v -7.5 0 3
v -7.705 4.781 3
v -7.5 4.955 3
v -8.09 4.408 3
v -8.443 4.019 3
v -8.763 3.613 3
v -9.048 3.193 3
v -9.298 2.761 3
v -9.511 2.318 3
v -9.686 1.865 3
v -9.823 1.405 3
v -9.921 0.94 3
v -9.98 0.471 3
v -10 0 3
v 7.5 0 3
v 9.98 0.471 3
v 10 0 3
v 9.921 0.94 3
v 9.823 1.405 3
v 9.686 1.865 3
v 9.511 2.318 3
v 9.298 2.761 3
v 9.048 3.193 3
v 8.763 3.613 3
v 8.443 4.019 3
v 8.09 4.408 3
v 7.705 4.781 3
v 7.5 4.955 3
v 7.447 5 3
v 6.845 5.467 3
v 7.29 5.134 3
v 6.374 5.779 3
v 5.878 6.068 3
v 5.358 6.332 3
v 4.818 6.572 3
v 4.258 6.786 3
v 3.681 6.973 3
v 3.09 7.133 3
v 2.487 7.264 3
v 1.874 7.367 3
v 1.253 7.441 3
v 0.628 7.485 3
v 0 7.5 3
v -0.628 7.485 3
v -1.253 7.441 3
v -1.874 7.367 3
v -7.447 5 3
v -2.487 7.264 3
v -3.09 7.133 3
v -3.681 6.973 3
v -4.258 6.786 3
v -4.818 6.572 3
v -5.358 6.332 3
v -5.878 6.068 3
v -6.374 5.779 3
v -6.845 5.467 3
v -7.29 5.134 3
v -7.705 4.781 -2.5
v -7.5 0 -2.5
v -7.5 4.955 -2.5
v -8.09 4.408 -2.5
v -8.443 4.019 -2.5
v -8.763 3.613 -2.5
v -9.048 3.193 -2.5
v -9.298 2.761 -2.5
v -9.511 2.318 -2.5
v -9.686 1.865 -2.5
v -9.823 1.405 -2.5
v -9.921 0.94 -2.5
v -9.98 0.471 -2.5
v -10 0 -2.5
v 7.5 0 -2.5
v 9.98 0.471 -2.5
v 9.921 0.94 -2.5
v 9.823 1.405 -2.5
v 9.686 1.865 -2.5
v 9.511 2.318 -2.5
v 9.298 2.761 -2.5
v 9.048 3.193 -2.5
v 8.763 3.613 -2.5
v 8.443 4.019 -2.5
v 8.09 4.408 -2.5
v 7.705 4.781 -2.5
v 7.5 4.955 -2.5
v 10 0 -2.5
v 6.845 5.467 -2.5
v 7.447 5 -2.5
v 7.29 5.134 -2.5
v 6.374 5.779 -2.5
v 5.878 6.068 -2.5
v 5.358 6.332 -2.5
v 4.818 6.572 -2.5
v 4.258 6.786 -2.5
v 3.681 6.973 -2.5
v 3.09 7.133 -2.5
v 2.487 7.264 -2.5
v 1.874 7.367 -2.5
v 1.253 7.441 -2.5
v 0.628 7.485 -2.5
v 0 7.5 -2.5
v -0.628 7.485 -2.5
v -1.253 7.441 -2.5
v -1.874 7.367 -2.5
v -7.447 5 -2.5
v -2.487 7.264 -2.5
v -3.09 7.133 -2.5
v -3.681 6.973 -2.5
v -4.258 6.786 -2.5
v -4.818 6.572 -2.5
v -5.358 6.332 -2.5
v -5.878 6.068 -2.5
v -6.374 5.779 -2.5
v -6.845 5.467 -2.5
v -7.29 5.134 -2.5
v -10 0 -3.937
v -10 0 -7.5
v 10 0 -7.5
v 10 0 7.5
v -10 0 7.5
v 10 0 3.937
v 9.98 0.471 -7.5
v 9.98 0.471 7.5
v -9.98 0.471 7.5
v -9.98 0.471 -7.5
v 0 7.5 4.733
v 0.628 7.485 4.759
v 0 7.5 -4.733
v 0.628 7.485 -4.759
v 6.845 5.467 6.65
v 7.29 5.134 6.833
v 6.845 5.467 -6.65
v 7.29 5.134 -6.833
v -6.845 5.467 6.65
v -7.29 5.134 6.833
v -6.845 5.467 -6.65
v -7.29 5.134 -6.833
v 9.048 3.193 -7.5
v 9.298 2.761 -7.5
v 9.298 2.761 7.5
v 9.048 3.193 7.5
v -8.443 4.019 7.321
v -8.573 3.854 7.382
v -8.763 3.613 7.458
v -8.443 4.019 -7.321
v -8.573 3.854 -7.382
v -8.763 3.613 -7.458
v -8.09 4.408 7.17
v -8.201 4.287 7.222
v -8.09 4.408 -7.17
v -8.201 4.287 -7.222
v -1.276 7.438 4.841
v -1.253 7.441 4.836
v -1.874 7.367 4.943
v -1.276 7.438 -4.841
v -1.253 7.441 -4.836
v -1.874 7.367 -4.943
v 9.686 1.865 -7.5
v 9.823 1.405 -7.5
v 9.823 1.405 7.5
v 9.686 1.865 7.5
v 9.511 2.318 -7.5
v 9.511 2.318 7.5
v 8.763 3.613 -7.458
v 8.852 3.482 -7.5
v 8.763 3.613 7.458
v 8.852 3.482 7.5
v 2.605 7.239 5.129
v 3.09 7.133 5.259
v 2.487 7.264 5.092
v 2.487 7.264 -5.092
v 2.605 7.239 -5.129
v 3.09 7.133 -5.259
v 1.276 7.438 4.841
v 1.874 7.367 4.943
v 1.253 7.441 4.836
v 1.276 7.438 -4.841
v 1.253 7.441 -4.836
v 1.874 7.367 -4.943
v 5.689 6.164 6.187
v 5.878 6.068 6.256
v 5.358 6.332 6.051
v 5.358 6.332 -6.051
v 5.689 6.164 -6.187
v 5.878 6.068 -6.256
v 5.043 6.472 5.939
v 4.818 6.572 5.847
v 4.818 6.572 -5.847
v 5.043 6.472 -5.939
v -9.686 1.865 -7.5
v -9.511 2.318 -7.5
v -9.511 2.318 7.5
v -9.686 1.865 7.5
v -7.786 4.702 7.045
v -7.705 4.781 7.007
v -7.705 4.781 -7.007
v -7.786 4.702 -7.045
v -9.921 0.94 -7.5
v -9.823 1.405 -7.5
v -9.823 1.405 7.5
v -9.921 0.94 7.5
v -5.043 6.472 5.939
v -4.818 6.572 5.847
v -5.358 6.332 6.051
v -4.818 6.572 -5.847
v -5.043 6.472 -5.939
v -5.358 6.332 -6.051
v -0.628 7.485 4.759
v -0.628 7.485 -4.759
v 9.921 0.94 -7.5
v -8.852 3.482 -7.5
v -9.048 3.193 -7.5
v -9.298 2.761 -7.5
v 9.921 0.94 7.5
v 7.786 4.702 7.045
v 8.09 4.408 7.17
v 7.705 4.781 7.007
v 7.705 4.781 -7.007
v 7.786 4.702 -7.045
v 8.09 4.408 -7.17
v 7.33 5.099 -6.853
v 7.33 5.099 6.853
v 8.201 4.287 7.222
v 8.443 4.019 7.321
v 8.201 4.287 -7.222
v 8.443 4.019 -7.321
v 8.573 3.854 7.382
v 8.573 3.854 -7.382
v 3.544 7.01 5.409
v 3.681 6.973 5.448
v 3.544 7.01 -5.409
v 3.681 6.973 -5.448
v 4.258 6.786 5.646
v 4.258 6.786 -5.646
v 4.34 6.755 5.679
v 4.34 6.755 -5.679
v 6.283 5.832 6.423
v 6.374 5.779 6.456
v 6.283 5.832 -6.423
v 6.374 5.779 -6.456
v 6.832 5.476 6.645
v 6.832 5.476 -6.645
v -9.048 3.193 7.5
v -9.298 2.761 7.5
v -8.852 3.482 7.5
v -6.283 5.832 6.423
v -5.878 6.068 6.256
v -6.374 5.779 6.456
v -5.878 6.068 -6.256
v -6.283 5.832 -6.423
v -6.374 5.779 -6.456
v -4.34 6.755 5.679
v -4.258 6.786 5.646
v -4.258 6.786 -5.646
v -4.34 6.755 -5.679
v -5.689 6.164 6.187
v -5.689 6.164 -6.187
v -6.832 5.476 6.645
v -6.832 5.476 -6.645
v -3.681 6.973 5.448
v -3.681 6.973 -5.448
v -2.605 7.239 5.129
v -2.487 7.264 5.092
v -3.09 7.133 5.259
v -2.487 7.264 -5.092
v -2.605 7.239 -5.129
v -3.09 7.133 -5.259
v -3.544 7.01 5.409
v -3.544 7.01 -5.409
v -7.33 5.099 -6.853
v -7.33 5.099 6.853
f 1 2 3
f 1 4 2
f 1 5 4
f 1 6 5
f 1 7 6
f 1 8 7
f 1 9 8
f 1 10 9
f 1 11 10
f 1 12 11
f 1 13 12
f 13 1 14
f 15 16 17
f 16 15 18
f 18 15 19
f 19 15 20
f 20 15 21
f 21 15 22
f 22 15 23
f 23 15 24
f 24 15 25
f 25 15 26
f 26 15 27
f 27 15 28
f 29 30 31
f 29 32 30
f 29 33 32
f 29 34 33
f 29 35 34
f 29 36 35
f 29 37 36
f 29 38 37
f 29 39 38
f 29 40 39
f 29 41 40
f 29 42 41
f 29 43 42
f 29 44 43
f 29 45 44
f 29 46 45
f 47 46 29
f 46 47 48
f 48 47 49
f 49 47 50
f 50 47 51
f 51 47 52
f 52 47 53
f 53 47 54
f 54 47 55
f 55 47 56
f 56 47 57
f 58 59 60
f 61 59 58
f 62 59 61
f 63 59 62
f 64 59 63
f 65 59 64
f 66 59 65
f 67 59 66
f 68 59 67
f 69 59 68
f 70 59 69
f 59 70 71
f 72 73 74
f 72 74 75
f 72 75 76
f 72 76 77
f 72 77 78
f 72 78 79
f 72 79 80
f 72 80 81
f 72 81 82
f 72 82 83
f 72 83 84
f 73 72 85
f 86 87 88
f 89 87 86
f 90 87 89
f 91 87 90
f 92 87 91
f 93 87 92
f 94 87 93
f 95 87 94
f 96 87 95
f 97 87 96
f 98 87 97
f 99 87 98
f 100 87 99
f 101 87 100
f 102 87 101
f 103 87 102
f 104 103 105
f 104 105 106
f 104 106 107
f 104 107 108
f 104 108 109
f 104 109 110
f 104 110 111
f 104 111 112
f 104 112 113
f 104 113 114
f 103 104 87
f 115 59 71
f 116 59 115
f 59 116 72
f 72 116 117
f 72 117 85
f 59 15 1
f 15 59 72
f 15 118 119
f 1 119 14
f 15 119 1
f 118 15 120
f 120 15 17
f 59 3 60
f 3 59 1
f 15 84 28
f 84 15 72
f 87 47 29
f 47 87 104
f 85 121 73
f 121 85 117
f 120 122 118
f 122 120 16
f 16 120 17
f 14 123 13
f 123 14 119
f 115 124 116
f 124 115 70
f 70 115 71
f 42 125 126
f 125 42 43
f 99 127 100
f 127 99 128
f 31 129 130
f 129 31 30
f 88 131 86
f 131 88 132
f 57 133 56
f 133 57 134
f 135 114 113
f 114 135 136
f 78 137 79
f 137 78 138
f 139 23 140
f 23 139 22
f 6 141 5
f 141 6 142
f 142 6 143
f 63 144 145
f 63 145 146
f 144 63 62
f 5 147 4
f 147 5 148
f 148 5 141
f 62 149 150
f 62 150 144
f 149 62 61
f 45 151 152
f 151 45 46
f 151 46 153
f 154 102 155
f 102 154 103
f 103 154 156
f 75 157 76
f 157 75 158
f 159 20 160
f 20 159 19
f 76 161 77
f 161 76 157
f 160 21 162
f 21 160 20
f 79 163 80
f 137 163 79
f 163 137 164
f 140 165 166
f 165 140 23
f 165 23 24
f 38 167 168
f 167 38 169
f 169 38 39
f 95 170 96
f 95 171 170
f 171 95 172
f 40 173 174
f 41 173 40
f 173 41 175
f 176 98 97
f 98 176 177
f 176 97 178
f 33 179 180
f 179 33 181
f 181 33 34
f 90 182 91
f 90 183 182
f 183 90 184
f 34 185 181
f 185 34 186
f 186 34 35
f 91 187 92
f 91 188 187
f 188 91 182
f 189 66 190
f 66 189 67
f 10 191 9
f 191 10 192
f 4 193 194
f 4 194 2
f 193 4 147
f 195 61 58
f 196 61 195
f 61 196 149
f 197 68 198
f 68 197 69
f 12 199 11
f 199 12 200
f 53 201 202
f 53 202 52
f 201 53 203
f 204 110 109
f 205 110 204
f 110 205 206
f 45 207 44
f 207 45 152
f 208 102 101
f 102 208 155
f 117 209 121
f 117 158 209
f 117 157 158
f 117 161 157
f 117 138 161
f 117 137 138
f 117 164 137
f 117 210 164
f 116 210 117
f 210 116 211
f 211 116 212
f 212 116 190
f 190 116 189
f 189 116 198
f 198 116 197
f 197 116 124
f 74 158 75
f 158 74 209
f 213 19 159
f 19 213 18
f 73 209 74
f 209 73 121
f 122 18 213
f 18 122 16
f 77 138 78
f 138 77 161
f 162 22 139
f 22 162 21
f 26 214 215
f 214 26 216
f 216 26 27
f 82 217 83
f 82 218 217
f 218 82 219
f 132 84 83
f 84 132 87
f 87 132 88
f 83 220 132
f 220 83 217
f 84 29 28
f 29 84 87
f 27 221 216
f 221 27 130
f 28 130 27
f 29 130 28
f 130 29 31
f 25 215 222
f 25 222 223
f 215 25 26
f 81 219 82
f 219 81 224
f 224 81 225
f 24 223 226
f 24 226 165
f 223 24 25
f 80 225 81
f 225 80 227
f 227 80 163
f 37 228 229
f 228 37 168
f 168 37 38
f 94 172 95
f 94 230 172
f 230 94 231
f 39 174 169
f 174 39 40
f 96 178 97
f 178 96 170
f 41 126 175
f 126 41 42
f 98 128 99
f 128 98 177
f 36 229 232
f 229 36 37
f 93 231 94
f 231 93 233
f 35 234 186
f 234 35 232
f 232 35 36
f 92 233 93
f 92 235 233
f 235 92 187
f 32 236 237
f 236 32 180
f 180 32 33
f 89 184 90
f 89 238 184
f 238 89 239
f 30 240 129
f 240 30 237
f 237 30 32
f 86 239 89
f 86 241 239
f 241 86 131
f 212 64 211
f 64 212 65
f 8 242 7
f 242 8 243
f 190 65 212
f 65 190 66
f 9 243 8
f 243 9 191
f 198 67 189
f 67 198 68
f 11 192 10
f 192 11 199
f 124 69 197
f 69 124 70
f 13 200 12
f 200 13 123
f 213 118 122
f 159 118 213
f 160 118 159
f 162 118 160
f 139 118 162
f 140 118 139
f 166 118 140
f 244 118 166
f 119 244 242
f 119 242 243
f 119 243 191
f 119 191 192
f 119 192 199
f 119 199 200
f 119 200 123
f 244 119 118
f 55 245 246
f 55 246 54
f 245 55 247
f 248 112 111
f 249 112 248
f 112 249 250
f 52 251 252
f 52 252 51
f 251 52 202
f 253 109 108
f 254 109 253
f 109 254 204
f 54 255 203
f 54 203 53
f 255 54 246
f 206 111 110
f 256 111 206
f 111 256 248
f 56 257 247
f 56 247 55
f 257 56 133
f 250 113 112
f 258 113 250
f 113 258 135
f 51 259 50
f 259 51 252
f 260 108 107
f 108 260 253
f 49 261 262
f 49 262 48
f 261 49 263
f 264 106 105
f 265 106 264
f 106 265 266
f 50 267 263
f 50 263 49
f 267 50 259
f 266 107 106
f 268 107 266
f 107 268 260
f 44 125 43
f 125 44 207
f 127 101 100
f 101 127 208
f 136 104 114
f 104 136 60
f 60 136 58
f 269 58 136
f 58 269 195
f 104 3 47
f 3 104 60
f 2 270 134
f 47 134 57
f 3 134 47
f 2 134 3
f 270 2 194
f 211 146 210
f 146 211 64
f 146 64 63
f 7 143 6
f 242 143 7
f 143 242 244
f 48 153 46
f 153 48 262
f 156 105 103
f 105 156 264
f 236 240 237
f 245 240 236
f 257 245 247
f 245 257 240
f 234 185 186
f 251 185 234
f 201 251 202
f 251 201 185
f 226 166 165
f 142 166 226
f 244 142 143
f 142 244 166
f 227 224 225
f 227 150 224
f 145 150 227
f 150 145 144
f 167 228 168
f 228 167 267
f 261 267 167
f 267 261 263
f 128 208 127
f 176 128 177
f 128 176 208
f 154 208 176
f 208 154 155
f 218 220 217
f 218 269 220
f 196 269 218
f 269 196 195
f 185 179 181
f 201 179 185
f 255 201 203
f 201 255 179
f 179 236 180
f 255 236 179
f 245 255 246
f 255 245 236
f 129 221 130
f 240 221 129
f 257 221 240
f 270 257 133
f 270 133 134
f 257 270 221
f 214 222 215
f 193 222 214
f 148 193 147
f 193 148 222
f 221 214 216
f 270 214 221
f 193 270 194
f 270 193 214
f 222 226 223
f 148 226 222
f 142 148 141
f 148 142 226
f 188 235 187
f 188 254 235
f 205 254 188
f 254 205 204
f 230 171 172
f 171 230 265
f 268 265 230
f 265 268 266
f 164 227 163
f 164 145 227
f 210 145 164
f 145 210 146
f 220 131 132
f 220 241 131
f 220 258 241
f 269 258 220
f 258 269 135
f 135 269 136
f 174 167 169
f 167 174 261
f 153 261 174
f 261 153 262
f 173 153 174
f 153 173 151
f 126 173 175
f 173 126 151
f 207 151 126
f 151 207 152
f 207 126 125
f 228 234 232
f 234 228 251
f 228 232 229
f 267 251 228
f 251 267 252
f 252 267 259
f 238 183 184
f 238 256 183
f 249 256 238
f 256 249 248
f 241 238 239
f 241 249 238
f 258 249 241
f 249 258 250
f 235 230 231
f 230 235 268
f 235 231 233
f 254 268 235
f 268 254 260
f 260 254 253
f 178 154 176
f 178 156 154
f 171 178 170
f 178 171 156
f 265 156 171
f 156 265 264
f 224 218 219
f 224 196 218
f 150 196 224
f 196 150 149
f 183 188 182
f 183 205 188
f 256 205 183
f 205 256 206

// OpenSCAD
$fn=100;

intersection() {
difference() {
        scale([2,1.5,1])
        translate([-0,0,-15/2])
        cylinder(d=10,h=15);
    translate([-17.5,0,-2.5])
    difference() {
    cube([50,50,5.5]);
        translate([10,-1,-1])
    cube([15,6,10]);
    }

    translate([-25,-50,-25])
    cube([50,50,50]);
};
scale([1,1.6,1])
rotate([0,90,0])
hull() {
    translate([-3,0,-20/2])
    cylinder(d=10,h=20);
    translate([3,0,-20/2])
    cylinder(d=10,h=20);
}
}
